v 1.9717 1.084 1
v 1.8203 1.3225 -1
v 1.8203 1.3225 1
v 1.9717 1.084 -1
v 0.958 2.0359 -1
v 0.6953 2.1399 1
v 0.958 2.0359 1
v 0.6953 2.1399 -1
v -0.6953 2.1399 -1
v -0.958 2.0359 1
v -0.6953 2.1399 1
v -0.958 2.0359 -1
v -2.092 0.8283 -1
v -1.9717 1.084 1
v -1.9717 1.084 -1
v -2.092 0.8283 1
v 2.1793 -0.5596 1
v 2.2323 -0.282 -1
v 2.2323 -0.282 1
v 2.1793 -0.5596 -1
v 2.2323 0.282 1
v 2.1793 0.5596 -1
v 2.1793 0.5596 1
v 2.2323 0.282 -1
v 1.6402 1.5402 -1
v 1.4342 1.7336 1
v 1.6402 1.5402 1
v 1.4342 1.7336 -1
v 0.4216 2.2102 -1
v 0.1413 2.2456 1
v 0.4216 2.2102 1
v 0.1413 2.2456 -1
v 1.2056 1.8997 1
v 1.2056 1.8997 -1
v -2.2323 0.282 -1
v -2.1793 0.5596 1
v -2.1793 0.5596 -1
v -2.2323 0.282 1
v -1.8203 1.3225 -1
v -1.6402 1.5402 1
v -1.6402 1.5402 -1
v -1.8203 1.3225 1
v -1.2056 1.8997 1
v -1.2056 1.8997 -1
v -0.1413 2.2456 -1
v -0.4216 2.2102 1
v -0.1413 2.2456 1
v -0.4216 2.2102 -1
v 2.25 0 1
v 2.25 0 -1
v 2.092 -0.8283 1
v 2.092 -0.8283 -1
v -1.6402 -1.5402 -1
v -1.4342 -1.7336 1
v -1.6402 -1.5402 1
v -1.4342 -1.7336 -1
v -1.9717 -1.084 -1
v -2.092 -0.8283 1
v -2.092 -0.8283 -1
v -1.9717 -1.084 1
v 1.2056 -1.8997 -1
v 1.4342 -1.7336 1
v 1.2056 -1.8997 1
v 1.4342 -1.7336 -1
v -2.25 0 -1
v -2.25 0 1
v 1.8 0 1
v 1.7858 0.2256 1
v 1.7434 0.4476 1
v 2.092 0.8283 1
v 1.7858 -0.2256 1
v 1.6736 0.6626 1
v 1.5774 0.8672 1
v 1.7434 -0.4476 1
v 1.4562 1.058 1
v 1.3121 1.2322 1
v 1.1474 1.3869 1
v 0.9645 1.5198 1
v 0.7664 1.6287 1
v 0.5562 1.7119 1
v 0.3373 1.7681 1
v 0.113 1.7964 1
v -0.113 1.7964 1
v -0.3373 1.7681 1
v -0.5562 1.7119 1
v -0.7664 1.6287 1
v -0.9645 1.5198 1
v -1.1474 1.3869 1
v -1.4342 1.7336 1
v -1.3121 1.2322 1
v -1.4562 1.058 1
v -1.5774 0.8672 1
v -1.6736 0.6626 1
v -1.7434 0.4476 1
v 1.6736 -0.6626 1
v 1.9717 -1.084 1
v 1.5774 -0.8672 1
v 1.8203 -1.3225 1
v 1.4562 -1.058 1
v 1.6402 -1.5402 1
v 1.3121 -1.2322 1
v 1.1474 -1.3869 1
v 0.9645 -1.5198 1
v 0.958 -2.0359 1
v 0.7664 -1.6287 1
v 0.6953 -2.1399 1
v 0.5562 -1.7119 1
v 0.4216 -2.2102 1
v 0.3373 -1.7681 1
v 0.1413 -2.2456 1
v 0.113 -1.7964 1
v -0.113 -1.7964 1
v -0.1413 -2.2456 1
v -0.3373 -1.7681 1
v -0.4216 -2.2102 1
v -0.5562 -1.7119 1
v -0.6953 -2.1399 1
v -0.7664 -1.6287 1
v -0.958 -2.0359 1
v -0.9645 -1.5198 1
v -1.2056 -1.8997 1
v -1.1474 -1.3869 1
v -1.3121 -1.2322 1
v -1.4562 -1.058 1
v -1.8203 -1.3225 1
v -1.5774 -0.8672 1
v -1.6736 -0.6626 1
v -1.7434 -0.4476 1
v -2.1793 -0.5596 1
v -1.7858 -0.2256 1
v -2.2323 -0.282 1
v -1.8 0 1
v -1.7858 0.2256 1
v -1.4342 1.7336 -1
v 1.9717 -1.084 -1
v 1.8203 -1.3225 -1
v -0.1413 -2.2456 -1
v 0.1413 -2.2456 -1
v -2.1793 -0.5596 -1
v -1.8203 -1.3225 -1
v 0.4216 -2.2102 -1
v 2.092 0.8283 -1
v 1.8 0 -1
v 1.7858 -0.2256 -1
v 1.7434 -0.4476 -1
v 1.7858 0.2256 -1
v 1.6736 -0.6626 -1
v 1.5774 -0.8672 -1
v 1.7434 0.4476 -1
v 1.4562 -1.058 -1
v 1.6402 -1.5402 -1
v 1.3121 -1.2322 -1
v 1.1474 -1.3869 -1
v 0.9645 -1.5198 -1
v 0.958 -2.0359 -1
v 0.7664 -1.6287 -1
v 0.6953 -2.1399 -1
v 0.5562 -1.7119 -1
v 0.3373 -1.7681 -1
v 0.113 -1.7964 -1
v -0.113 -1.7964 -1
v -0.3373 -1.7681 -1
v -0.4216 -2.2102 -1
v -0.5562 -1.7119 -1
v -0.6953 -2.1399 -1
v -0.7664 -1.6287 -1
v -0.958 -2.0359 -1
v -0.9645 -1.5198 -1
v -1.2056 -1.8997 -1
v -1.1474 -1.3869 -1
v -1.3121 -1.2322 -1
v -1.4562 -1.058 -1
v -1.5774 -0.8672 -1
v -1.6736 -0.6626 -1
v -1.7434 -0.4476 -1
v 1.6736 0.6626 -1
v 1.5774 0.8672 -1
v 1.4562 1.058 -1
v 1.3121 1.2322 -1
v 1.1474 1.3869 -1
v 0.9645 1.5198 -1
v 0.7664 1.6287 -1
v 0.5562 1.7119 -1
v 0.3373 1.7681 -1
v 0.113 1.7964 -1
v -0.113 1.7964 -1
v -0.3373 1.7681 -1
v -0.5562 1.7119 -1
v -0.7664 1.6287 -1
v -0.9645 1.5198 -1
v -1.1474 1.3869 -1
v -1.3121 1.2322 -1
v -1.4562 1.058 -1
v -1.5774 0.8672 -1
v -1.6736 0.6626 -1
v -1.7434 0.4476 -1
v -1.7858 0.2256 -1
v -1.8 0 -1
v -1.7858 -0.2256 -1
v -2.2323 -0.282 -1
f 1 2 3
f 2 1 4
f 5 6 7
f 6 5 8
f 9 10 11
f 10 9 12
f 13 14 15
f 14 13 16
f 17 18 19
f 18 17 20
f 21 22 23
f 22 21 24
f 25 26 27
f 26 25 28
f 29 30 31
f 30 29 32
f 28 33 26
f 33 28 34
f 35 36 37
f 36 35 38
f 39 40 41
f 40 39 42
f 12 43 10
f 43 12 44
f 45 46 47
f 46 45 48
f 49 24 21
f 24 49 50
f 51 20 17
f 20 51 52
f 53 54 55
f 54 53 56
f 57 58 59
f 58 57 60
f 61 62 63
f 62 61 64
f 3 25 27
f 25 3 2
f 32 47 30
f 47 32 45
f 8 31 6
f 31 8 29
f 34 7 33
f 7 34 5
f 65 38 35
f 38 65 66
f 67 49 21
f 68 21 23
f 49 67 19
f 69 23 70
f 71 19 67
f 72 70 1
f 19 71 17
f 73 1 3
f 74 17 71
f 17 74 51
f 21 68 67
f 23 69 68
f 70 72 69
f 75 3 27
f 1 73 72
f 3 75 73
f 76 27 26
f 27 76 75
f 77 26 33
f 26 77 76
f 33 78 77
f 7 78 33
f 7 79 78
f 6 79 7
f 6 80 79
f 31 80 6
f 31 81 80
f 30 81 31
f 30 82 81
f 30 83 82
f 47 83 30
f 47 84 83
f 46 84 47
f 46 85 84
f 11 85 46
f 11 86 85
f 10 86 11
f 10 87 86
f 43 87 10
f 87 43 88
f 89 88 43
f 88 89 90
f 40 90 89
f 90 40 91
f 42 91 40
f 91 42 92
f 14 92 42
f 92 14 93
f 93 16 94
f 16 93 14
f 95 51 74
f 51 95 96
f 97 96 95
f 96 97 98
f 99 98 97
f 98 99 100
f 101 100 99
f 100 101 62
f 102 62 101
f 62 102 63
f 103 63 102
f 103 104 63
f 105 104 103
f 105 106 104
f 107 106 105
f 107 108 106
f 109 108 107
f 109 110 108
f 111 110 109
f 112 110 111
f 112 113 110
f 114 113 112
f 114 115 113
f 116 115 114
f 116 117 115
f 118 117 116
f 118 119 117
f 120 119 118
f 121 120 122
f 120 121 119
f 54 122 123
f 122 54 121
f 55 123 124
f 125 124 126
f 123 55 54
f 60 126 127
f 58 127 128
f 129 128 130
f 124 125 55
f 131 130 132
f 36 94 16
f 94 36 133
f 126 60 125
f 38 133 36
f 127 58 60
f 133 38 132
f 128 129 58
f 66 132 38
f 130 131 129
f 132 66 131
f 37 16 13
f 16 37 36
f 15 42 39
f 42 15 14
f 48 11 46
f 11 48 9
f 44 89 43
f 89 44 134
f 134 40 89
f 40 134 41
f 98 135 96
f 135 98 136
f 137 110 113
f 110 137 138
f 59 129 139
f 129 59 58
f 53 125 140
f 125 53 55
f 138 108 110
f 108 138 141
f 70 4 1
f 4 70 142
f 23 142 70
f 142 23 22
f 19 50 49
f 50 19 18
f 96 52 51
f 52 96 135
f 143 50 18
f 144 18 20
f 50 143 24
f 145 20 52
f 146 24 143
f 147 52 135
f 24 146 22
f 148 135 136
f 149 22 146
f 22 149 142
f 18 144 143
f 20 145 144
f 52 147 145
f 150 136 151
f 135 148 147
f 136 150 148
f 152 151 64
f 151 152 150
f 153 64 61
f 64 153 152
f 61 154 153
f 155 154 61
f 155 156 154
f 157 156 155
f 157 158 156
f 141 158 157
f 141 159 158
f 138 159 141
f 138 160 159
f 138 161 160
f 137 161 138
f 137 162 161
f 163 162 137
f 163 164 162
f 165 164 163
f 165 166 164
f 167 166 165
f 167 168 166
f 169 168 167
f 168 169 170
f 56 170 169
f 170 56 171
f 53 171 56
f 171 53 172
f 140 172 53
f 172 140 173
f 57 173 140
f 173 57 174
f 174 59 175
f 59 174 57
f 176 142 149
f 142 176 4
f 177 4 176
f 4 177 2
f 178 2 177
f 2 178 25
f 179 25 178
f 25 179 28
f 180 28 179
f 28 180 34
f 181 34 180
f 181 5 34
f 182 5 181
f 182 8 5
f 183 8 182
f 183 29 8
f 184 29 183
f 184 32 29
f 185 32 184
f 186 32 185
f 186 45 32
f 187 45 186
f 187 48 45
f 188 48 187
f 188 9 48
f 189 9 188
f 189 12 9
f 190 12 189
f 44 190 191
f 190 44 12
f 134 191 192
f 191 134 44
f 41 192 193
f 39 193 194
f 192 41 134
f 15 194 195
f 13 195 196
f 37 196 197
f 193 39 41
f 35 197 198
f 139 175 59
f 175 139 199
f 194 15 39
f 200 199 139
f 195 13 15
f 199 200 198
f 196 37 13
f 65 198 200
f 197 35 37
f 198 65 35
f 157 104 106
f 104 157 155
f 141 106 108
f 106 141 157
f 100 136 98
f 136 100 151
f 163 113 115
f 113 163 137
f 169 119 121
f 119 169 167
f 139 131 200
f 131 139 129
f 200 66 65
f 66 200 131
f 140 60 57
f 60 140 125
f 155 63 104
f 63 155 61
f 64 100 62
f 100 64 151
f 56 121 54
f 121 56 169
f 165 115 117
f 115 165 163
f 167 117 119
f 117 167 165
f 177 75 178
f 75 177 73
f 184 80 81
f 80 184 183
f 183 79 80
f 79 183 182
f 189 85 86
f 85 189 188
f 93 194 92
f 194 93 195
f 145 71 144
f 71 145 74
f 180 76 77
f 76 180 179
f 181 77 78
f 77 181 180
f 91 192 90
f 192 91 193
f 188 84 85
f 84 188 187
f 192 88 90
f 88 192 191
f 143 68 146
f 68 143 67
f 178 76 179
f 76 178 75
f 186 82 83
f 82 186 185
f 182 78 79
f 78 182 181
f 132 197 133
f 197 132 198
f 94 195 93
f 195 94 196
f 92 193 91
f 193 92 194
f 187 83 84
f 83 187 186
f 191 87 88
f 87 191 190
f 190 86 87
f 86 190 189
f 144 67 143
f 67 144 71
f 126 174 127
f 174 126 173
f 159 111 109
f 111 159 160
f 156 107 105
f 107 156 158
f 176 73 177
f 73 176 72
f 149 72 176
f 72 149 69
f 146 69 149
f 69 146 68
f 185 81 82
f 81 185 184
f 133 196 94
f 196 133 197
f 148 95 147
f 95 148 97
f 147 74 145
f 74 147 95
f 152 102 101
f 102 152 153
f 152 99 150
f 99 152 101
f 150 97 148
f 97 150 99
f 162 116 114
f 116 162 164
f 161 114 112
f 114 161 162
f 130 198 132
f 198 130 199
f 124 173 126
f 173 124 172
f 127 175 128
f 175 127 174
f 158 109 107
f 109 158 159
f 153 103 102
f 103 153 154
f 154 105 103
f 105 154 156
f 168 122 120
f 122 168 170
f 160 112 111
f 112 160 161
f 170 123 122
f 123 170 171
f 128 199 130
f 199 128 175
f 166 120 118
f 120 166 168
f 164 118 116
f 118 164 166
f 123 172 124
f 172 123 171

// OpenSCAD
$fn = 50;


difference() {
	union() {
		translate(v = [0, 0, -1.0000000000]) {
			cylinder(h = 2, r = 2.2500000000);
		}
	}
	union() {
		translate(v = [0, 0, -100.0000000000]) {
			cylinder(h = 200, r = 1.8000000000);
		}
	}
}
